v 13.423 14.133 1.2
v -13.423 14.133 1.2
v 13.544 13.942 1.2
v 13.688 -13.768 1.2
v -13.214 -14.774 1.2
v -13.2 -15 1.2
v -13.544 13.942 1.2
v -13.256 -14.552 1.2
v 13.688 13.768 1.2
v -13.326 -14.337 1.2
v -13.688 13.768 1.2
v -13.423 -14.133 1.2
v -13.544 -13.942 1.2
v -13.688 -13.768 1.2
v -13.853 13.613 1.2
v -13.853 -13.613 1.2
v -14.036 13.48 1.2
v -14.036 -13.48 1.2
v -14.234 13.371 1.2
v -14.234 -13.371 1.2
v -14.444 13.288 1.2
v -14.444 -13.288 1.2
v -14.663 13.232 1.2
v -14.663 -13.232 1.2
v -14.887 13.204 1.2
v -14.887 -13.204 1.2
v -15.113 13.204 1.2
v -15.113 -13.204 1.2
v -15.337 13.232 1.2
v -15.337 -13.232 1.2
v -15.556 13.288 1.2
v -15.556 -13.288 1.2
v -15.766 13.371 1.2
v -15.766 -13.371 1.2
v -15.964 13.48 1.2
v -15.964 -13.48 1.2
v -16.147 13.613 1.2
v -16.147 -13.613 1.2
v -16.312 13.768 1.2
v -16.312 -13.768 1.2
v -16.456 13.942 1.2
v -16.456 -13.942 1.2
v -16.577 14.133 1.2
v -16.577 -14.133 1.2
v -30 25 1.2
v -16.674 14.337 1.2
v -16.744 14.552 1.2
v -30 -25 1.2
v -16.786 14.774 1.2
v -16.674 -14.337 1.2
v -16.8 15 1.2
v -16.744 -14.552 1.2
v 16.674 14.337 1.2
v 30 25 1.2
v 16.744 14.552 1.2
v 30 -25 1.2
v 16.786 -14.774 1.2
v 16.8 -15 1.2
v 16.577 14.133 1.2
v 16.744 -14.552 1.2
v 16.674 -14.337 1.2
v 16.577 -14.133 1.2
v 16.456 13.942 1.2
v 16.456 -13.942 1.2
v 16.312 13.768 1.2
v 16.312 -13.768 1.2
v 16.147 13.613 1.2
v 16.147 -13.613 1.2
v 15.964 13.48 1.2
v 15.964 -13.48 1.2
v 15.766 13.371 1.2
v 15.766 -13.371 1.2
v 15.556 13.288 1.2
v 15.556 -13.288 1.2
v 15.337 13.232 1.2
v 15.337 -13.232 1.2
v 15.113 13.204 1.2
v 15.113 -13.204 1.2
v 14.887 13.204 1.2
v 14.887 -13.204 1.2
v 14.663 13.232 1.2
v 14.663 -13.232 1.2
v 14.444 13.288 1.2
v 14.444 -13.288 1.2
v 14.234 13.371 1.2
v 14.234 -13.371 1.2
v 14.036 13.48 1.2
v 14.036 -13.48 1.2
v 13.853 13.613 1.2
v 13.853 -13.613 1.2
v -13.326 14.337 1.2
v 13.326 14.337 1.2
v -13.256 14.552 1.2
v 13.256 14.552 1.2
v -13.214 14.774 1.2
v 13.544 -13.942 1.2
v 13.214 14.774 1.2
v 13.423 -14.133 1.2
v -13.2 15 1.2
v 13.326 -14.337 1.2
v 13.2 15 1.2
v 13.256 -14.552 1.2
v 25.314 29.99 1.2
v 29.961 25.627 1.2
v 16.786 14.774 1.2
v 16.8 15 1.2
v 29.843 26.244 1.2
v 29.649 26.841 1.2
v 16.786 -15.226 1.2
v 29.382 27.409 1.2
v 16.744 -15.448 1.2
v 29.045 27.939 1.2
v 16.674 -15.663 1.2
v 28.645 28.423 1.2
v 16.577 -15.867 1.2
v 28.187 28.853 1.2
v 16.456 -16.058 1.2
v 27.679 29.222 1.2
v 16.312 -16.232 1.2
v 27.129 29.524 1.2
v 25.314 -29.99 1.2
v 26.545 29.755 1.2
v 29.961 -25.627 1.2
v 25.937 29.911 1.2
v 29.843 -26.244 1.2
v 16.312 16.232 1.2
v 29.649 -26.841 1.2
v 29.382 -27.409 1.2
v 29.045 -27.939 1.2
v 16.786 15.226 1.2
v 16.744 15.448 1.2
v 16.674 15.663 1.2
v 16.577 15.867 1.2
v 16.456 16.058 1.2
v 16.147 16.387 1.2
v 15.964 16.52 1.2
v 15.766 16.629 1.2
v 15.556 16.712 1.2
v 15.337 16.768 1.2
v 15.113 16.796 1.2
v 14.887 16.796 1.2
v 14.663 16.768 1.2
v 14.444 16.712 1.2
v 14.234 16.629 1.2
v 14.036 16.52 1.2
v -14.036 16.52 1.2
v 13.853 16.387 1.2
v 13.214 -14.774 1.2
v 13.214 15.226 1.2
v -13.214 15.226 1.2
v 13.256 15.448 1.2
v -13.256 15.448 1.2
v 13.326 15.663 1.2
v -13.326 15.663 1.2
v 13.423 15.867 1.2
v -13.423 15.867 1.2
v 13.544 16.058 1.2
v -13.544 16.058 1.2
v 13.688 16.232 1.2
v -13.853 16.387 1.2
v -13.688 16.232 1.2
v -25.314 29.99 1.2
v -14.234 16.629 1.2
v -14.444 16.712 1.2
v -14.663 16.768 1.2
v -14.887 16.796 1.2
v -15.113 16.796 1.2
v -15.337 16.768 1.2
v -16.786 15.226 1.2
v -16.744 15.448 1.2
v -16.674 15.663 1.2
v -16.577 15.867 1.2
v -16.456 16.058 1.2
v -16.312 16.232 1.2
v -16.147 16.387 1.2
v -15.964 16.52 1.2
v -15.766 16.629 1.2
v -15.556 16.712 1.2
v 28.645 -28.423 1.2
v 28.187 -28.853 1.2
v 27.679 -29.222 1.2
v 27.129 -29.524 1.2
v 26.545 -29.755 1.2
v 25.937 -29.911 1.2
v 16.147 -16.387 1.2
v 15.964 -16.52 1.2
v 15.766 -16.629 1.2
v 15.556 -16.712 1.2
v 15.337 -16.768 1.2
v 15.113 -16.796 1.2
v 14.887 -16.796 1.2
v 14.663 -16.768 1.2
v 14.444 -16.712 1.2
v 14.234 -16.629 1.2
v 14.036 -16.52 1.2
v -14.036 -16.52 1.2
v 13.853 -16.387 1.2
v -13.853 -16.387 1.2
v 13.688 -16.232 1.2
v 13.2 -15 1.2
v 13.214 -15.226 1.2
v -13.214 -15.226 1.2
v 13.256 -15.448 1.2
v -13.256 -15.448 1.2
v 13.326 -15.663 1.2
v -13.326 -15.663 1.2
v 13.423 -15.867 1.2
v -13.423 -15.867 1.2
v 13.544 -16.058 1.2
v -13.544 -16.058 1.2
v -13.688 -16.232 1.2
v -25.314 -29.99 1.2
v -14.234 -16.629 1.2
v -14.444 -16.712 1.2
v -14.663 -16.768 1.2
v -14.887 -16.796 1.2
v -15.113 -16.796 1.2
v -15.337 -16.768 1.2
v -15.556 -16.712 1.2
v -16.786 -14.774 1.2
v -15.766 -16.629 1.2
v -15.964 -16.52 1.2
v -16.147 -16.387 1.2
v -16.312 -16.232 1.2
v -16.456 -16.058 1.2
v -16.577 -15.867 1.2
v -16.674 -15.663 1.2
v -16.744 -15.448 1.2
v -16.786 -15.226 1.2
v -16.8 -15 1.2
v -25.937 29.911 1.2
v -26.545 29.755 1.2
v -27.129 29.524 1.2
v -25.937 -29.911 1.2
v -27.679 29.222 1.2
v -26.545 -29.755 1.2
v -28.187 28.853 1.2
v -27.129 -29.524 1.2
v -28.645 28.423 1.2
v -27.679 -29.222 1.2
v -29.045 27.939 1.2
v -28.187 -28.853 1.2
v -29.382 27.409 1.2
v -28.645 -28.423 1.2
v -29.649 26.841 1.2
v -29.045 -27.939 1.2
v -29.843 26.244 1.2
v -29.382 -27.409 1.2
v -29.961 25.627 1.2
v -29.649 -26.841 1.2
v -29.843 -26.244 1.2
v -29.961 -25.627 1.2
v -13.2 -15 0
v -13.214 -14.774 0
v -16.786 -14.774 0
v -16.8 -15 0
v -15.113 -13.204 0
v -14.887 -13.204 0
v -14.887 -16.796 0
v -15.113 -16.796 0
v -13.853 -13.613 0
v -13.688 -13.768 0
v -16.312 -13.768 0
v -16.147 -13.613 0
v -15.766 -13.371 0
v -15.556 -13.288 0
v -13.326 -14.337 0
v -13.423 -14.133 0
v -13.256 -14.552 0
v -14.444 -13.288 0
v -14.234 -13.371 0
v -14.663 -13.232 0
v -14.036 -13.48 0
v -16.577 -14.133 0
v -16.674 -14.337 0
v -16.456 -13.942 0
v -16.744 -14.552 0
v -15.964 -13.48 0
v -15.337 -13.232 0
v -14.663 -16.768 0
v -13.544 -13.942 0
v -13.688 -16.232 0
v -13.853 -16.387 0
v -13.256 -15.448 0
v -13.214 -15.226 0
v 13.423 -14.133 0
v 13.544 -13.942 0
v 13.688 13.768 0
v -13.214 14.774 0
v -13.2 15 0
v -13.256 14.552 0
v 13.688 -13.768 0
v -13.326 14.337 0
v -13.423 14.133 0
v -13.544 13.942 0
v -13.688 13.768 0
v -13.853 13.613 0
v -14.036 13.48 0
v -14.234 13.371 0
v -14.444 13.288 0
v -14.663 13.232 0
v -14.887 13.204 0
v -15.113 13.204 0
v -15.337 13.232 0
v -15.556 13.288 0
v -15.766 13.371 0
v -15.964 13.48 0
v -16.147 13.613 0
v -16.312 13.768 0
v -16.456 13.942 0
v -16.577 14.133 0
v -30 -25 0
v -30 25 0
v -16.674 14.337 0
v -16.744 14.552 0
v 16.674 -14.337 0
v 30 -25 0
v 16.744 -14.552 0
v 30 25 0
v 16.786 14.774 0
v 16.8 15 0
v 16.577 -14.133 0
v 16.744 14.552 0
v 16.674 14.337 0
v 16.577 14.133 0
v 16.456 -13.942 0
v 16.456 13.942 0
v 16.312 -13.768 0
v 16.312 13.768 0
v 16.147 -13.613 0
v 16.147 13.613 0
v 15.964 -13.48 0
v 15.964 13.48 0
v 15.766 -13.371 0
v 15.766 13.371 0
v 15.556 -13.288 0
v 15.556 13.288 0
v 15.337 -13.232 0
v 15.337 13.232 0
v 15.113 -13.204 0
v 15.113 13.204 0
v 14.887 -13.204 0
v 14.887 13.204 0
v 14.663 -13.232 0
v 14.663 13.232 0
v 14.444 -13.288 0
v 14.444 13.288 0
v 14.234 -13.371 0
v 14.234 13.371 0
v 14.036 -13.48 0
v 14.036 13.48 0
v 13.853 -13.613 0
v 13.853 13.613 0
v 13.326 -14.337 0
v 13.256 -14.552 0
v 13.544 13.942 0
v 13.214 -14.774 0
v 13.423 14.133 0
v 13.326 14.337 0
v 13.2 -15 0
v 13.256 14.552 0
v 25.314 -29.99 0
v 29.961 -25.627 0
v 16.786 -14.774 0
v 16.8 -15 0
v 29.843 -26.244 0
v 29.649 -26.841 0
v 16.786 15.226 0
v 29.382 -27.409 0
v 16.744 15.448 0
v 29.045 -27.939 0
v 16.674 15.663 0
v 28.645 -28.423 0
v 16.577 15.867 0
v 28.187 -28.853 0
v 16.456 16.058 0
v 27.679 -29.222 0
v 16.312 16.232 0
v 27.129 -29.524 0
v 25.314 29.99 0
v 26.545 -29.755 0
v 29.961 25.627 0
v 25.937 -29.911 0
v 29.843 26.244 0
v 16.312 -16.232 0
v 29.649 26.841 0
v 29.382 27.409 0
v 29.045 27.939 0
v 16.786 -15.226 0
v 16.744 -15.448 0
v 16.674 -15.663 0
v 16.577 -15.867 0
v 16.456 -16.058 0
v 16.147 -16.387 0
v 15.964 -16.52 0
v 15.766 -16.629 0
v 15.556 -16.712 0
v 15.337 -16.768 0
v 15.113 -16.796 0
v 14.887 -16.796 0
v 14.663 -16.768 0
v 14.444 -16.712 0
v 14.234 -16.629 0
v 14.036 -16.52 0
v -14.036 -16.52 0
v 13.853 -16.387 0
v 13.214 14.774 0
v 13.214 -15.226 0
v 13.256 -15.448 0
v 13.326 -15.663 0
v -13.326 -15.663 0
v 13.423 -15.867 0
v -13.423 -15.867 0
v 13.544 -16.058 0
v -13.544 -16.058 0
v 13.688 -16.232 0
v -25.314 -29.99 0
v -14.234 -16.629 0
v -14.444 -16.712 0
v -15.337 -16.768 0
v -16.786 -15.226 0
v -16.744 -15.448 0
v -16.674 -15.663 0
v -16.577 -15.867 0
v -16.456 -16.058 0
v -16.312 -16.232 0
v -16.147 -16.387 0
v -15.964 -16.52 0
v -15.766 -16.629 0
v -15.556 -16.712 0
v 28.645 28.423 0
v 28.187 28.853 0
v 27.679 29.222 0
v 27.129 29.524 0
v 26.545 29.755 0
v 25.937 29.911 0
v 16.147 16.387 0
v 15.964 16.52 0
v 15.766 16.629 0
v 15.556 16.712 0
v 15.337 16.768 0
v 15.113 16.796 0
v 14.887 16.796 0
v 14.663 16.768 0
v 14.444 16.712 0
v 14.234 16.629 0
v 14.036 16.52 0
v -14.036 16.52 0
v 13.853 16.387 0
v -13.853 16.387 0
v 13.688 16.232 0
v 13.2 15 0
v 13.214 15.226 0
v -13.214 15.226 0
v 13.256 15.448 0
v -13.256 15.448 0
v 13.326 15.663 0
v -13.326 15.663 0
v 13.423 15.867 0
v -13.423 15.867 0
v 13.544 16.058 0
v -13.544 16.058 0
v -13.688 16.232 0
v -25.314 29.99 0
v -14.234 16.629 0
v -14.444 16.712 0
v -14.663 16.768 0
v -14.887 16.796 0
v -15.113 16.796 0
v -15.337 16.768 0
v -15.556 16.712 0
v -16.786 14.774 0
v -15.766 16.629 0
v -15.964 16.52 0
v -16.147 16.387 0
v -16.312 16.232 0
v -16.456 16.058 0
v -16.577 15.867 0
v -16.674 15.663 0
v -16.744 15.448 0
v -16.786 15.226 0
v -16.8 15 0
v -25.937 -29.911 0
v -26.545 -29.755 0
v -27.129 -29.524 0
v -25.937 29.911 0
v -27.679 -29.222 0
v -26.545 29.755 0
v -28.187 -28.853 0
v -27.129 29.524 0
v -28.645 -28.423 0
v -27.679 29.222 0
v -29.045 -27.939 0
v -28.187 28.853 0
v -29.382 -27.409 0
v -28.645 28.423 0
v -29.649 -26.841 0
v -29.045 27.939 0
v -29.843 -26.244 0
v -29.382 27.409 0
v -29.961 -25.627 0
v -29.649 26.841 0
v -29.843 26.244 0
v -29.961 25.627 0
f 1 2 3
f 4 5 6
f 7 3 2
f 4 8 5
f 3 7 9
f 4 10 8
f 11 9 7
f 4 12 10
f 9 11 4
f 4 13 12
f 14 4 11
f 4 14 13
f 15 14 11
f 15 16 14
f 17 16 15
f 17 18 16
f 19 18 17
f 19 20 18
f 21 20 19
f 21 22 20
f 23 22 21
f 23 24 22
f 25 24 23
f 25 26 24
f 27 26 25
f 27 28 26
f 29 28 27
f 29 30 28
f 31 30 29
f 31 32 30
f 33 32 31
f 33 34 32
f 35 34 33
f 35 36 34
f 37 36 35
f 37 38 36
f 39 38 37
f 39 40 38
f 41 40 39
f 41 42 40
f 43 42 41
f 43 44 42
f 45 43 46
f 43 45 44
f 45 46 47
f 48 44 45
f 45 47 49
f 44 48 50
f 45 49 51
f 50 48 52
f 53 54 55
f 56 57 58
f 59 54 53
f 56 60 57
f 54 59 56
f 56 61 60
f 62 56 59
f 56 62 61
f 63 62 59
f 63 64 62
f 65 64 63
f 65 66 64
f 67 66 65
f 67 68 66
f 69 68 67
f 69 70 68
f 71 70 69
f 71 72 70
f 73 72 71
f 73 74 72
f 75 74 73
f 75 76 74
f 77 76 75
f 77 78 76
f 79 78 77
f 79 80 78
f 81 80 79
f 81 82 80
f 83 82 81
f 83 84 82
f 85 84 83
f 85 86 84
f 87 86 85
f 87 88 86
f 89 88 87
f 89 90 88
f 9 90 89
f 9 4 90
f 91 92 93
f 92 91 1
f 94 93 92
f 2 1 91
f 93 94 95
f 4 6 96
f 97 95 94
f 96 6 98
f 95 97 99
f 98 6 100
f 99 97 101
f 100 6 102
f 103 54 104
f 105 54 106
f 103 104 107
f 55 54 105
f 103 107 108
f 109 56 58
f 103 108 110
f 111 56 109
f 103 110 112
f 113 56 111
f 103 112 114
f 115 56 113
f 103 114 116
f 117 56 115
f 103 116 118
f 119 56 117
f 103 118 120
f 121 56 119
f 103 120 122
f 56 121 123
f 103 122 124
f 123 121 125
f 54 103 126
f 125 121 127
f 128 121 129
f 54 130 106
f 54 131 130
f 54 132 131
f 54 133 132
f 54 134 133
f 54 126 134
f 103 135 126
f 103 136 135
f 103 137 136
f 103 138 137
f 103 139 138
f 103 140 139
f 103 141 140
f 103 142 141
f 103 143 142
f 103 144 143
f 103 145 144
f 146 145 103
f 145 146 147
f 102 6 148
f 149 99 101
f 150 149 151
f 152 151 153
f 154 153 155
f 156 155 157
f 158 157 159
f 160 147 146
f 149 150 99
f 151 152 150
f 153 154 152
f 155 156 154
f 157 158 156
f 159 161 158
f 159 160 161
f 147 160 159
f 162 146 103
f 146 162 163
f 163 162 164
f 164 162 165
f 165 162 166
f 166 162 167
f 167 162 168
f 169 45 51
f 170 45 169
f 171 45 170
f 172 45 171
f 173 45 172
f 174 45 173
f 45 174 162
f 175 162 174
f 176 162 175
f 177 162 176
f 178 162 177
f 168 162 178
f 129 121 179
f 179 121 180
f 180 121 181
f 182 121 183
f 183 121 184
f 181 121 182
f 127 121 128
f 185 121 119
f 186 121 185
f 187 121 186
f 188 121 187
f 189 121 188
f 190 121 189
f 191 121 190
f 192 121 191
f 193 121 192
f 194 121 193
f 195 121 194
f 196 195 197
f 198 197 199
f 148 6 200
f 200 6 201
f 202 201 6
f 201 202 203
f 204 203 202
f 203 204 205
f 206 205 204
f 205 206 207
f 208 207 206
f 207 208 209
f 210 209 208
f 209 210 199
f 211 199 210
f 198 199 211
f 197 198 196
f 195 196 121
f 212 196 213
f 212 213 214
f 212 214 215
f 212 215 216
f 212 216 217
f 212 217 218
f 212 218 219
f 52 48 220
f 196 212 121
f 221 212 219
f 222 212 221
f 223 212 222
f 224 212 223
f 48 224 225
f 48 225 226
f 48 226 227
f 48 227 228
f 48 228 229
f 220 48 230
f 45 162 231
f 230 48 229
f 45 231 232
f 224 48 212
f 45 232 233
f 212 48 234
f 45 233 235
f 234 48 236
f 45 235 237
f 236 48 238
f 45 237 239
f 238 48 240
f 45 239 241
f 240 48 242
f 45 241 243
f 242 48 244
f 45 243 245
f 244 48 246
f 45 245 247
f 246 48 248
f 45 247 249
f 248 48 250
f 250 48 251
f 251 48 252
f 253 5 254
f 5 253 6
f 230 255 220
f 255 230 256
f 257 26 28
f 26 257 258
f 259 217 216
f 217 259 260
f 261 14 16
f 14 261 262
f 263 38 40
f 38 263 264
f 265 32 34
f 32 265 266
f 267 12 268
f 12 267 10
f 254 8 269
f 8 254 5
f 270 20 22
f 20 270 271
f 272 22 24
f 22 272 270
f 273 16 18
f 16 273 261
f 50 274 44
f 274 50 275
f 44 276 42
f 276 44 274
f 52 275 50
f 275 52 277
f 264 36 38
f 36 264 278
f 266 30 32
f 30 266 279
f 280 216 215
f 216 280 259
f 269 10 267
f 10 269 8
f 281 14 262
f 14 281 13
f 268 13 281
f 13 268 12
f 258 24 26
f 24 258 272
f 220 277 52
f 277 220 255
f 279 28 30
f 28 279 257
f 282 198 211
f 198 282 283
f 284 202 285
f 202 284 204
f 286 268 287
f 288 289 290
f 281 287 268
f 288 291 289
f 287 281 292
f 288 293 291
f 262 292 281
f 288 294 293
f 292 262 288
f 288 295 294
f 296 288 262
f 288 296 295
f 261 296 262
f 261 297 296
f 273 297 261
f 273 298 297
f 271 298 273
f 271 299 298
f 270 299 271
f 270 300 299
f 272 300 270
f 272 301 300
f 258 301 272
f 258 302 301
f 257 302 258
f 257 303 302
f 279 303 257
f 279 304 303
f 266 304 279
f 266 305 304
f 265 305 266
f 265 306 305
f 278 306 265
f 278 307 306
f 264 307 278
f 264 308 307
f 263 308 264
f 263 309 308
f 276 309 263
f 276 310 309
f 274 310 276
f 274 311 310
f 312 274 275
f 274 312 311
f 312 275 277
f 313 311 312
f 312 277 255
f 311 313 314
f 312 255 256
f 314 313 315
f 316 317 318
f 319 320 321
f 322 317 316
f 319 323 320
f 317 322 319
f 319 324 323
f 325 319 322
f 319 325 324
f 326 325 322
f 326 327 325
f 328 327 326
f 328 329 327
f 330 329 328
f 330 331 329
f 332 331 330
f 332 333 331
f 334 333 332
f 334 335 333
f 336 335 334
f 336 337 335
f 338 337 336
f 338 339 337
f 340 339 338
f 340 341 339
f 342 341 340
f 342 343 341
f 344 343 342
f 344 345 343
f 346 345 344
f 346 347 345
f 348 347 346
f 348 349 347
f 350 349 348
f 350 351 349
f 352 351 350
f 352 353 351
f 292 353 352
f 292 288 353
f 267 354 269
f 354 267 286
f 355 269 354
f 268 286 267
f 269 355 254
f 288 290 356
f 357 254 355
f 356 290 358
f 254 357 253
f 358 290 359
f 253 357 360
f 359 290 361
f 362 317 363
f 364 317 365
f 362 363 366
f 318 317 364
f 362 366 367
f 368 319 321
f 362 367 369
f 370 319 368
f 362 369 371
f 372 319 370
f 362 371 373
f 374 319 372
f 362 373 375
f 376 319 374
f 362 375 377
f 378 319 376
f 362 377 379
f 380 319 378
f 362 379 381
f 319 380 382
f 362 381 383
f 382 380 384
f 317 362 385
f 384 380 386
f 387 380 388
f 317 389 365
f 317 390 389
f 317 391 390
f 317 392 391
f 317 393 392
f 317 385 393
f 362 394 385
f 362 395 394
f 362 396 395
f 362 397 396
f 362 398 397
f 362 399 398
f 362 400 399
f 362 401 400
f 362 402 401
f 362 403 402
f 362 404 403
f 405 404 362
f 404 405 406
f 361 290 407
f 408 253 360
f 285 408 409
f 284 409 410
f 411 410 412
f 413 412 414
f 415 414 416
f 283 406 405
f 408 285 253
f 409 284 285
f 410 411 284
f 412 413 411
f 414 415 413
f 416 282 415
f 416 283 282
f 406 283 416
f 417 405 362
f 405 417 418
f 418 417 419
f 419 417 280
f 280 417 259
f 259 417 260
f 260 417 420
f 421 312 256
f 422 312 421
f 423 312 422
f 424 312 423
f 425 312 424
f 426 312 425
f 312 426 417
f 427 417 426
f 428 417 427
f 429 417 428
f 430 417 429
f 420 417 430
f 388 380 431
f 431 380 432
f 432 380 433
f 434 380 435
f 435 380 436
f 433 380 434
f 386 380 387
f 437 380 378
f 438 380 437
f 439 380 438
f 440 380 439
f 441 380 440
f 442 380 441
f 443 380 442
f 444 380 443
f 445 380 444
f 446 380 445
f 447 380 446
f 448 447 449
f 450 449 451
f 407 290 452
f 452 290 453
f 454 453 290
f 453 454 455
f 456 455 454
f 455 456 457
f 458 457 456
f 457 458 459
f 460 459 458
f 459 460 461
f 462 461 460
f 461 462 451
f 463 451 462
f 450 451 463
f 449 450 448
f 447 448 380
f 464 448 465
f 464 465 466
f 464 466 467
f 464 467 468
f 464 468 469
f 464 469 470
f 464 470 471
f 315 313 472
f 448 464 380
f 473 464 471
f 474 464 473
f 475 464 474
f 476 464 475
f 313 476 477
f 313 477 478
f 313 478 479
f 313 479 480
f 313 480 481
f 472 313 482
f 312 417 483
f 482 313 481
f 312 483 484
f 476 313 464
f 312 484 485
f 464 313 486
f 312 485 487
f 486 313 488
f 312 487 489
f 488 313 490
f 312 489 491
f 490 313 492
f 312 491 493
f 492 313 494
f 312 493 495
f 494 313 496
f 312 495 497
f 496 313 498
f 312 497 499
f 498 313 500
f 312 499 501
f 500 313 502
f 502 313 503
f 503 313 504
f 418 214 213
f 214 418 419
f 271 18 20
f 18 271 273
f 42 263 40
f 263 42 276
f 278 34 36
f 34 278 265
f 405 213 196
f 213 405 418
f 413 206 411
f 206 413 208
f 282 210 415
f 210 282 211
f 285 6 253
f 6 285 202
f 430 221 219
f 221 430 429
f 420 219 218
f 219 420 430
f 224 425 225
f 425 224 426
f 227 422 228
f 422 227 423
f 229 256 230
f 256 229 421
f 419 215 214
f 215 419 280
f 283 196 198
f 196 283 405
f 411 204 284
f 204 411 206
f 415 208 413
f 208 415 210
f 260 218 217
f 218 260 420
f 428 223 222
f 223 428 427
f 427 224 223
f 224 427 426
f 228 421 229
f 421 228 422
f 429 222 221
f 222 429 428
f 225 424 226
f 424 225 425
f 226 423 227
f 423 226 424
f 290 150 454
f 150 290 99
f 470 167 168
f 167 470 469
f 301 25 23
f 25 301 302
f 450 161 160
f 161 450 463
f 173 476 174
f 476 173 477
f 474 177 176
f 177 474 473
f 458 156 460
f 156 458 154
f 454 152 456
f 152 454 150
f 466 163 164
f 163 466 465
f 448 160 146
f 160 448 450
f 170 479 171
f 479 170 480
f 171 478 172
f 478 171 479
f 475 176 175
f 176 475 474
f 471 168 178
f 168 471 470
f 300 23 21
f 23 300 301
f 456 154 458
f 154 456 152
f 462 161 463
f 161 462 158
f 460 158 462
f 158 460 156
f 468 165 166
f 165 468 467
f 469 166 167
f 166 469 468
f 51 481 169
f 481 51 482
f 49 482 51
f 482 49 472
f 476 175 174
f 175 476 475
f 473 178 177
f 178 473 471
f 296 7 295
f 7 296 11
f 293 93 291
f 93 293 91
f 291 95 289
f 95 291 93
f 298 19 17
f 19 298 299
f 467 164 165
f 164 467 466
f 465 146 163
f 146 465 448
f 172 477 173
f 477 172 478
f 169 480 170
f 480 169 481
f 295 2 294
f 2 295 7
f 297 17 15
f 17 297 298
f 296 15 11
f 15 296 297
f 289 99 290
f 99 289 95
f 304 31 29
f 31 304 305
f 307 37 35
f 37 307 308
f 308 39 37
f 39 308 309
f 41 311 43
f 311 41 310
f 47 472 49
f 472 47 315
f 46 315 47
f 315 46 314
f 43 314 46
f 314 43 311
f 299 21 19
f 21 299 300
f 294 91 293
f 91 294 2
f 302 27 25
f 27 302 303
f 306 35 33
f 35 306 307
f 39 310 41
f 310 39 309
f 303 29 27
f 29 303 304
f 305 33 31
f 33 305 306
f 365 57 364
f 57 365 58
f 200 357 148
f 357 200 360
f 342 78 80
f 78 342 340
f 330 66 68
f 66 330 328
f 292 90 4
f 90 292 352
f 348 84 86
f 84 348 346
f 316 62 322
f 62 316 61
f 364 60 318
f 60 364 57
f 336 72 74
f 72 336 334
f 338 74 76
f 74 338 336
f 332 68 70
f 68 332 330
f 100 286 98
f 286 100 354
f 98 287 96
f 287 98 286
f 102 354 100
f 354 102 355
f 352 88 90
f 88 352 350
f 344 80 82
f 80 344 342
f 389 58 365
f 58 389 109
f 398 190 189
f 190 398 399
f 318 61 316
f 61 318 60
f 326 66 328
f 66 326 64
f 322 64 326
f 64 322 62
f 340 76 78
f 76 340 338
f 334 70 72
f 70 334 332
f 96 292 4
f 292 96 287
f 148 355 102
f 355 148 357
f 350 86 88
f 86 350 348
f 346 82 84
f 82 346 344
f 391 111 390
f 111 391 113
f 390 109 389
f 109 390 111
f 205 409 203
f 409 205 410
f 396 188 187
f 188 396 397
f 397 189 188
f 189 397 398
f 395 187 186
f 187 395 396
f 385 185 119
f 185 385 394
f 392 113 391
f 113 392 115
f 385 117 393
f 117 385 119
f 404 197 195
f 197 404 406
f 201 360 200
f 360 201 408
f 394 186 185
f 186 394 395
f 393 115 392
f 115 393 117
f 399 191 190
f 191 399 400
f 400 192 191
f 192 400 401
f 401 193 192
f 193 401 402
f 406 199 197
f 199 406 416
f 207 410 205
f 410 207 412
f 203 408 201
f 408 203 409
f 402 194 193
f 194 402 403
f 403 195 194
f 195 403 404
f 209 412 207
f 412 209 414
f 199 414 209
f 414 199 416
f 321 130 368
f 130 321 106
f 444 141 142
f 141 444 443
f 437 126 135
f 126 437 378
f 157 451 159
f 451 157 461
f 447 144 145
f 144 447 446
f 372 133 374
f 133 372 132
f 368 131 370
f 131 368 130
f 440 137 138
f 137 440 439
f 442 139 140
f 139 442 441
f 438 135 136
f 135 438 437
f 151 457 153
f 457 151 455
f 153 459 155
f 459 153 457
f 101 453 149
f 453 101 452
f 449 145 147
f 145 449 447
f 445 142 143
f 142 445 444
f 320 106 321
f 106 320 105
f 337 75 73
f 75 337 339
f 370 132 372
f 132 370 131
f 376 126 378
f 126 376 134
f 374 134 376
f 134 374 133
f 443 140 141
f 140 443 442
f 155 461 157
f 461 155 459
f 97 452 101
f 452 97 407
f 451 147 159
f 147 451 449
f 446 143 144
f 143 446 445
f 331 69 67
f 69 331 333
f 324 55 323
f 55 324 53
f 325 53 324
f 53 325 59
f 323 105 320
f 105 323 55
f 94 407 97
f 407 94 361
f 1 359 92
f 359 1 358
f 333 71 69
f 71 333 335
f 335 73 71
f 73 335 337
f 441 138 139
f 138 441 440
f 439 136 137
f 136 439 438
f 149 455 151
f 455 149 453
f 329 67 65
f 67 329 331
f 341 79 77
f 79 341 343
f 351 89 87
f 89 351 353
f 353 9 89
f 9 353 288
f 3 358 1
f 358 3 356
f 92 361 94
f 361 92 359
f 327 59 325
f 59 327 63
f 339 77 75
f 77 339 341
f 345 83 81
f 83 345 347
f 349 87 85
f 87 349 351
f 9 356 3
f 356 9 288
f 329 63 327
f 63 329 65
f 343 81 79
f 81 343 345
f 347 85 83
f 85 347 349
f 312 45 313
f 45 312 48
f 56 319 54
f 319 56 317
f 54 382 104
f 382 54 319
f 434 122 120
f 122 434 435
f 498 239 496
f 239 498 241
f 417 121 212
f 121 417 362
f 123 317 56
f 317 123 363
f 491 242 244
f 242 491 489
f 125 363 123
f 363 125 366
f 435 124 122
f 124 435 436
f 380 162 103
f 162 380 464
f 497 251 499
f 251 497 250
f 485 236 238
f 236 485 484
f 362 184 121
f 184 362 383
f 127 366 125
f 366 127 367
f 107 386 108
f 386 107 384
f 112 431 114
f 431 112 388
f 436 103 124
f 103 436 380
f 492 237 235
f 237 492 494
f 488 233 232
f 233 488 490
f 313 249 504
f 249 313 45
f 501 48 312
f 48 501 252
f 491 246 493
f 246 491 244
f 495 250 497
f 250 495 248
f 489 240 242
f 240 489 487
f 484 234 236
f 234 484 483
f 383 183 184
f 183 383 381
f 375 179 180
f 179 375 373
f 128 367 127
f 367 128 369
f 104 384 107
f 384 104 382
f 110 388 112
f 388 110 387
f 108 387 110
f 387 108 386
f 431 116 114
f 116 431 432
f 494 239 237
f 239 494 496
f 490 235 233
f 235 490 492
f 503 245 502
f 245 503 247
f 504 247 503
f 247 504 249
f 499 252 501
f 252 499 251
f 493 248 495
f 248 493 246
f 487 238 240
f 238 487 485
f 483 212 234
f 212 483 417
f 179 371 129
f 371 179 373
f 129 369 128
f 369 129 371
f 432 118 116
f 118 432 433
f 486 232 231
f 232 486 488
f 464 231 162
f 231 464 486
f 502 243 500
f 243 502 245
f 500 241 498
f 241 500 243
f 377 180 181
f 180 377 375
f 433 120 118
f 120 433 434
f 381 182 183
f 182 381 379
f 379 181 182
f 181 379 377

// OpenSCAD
$fn = 50;


difference() {
	union() {
		hull() {
			translate(v = [-25.0000000000, 25.0000000000, 0]) {
				cylinder(h = 45, r = 5);
			}
			translate(v = [25.0000000000, 25.0000000000, 0]) {
				cylinder(h = 45, r = 5);
			}
			translate(v = [-25.0000000000, -25.0000000000, 0]) {
				cylinder(h = 45, r = 5);
			}
			translate(v = [25.0000000000, -25.0000000000, 0]) {
				cylinder(h = 45, r = 5);
			}
		}
	}
	union() {
		translate(v = [0, 0, 1.2000000000]) {
			hull() {
				translate(v = [-25.0000000000, 25.0000000000, 0]) {
					cylinder(h = 43.8000000000, r = 3.8000000000);
				}
				translate(v = [25.0000000000, 25.0000000000, 0]) {
					cylinder(h = 43.8000000000, r = 3.8000000000);
				}
				translate(v = [-25.0000000000, -25.0000000000, 0]) {
					cylinder(h = 43.8000000000, r = 3.8000000000);
				}
				translate(v = [25.0000000000, -25.0000000000, 0]) {
					cylinder(h = 43.8000000000, r = 3.8000000000);
				}
			}
		}
		#translate(v = [-15.0000000000, -15.0000000000, 0]) {
			cylinder(h = 1.2000000000, r = 1.8000000000);
		}
		#translate(v = [-15.0000000000, 15.0000000000, 0]) {
			cylinder(h = 1.2000000000, r = 1.8000000000);
		}
		#translate(v = [15.0000000000, -15.0000000000, 0]) {
			cylinder(h = 1.2000000000, r = 1.8000000000);
		}
		#translate(v = [15.0000000000, 15.0000000000, 0]) {
			cylinder(h = 1.2000000000, r = 1.8000000000);
		}
		translate(v = [-250.0000000000, -250.0000000000, 1.2000000000]) {
			cube(size = [500, 500, 500]);
		}
		translate(v = [-250.0000000000, -250.0000000000, 1.2000000000]) {
			cube(size = [500, 500, 500]);
		}
		translate(v = [-250.0000000000, -250.0000000000, 1.2000000000]) {
			cube(size = [500, 500, 500]);
		}
	}
}
